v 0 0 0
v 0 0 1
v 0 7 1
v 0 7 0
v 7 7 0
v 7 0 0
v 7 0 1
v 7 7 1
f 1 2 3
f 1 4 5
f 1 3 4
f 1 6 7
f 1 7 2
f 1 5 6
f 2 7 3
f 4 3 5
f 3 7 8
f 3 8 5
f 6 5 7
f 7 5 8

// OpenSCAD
/* Warning, this is a very basic generator with a lot of approximation 
input data : [TQFP, CQA, 7x7x1.0mm, 48, , A, C04-01175A]
generated by com.zoubworld.electronics.cad.model3d.Basic
Date : Sun Feb 15 10:50:49 CET 2026
*/

//body
color("black")
translate([0,0,0])
cube([7.0,7.0,1.0], center=false);
